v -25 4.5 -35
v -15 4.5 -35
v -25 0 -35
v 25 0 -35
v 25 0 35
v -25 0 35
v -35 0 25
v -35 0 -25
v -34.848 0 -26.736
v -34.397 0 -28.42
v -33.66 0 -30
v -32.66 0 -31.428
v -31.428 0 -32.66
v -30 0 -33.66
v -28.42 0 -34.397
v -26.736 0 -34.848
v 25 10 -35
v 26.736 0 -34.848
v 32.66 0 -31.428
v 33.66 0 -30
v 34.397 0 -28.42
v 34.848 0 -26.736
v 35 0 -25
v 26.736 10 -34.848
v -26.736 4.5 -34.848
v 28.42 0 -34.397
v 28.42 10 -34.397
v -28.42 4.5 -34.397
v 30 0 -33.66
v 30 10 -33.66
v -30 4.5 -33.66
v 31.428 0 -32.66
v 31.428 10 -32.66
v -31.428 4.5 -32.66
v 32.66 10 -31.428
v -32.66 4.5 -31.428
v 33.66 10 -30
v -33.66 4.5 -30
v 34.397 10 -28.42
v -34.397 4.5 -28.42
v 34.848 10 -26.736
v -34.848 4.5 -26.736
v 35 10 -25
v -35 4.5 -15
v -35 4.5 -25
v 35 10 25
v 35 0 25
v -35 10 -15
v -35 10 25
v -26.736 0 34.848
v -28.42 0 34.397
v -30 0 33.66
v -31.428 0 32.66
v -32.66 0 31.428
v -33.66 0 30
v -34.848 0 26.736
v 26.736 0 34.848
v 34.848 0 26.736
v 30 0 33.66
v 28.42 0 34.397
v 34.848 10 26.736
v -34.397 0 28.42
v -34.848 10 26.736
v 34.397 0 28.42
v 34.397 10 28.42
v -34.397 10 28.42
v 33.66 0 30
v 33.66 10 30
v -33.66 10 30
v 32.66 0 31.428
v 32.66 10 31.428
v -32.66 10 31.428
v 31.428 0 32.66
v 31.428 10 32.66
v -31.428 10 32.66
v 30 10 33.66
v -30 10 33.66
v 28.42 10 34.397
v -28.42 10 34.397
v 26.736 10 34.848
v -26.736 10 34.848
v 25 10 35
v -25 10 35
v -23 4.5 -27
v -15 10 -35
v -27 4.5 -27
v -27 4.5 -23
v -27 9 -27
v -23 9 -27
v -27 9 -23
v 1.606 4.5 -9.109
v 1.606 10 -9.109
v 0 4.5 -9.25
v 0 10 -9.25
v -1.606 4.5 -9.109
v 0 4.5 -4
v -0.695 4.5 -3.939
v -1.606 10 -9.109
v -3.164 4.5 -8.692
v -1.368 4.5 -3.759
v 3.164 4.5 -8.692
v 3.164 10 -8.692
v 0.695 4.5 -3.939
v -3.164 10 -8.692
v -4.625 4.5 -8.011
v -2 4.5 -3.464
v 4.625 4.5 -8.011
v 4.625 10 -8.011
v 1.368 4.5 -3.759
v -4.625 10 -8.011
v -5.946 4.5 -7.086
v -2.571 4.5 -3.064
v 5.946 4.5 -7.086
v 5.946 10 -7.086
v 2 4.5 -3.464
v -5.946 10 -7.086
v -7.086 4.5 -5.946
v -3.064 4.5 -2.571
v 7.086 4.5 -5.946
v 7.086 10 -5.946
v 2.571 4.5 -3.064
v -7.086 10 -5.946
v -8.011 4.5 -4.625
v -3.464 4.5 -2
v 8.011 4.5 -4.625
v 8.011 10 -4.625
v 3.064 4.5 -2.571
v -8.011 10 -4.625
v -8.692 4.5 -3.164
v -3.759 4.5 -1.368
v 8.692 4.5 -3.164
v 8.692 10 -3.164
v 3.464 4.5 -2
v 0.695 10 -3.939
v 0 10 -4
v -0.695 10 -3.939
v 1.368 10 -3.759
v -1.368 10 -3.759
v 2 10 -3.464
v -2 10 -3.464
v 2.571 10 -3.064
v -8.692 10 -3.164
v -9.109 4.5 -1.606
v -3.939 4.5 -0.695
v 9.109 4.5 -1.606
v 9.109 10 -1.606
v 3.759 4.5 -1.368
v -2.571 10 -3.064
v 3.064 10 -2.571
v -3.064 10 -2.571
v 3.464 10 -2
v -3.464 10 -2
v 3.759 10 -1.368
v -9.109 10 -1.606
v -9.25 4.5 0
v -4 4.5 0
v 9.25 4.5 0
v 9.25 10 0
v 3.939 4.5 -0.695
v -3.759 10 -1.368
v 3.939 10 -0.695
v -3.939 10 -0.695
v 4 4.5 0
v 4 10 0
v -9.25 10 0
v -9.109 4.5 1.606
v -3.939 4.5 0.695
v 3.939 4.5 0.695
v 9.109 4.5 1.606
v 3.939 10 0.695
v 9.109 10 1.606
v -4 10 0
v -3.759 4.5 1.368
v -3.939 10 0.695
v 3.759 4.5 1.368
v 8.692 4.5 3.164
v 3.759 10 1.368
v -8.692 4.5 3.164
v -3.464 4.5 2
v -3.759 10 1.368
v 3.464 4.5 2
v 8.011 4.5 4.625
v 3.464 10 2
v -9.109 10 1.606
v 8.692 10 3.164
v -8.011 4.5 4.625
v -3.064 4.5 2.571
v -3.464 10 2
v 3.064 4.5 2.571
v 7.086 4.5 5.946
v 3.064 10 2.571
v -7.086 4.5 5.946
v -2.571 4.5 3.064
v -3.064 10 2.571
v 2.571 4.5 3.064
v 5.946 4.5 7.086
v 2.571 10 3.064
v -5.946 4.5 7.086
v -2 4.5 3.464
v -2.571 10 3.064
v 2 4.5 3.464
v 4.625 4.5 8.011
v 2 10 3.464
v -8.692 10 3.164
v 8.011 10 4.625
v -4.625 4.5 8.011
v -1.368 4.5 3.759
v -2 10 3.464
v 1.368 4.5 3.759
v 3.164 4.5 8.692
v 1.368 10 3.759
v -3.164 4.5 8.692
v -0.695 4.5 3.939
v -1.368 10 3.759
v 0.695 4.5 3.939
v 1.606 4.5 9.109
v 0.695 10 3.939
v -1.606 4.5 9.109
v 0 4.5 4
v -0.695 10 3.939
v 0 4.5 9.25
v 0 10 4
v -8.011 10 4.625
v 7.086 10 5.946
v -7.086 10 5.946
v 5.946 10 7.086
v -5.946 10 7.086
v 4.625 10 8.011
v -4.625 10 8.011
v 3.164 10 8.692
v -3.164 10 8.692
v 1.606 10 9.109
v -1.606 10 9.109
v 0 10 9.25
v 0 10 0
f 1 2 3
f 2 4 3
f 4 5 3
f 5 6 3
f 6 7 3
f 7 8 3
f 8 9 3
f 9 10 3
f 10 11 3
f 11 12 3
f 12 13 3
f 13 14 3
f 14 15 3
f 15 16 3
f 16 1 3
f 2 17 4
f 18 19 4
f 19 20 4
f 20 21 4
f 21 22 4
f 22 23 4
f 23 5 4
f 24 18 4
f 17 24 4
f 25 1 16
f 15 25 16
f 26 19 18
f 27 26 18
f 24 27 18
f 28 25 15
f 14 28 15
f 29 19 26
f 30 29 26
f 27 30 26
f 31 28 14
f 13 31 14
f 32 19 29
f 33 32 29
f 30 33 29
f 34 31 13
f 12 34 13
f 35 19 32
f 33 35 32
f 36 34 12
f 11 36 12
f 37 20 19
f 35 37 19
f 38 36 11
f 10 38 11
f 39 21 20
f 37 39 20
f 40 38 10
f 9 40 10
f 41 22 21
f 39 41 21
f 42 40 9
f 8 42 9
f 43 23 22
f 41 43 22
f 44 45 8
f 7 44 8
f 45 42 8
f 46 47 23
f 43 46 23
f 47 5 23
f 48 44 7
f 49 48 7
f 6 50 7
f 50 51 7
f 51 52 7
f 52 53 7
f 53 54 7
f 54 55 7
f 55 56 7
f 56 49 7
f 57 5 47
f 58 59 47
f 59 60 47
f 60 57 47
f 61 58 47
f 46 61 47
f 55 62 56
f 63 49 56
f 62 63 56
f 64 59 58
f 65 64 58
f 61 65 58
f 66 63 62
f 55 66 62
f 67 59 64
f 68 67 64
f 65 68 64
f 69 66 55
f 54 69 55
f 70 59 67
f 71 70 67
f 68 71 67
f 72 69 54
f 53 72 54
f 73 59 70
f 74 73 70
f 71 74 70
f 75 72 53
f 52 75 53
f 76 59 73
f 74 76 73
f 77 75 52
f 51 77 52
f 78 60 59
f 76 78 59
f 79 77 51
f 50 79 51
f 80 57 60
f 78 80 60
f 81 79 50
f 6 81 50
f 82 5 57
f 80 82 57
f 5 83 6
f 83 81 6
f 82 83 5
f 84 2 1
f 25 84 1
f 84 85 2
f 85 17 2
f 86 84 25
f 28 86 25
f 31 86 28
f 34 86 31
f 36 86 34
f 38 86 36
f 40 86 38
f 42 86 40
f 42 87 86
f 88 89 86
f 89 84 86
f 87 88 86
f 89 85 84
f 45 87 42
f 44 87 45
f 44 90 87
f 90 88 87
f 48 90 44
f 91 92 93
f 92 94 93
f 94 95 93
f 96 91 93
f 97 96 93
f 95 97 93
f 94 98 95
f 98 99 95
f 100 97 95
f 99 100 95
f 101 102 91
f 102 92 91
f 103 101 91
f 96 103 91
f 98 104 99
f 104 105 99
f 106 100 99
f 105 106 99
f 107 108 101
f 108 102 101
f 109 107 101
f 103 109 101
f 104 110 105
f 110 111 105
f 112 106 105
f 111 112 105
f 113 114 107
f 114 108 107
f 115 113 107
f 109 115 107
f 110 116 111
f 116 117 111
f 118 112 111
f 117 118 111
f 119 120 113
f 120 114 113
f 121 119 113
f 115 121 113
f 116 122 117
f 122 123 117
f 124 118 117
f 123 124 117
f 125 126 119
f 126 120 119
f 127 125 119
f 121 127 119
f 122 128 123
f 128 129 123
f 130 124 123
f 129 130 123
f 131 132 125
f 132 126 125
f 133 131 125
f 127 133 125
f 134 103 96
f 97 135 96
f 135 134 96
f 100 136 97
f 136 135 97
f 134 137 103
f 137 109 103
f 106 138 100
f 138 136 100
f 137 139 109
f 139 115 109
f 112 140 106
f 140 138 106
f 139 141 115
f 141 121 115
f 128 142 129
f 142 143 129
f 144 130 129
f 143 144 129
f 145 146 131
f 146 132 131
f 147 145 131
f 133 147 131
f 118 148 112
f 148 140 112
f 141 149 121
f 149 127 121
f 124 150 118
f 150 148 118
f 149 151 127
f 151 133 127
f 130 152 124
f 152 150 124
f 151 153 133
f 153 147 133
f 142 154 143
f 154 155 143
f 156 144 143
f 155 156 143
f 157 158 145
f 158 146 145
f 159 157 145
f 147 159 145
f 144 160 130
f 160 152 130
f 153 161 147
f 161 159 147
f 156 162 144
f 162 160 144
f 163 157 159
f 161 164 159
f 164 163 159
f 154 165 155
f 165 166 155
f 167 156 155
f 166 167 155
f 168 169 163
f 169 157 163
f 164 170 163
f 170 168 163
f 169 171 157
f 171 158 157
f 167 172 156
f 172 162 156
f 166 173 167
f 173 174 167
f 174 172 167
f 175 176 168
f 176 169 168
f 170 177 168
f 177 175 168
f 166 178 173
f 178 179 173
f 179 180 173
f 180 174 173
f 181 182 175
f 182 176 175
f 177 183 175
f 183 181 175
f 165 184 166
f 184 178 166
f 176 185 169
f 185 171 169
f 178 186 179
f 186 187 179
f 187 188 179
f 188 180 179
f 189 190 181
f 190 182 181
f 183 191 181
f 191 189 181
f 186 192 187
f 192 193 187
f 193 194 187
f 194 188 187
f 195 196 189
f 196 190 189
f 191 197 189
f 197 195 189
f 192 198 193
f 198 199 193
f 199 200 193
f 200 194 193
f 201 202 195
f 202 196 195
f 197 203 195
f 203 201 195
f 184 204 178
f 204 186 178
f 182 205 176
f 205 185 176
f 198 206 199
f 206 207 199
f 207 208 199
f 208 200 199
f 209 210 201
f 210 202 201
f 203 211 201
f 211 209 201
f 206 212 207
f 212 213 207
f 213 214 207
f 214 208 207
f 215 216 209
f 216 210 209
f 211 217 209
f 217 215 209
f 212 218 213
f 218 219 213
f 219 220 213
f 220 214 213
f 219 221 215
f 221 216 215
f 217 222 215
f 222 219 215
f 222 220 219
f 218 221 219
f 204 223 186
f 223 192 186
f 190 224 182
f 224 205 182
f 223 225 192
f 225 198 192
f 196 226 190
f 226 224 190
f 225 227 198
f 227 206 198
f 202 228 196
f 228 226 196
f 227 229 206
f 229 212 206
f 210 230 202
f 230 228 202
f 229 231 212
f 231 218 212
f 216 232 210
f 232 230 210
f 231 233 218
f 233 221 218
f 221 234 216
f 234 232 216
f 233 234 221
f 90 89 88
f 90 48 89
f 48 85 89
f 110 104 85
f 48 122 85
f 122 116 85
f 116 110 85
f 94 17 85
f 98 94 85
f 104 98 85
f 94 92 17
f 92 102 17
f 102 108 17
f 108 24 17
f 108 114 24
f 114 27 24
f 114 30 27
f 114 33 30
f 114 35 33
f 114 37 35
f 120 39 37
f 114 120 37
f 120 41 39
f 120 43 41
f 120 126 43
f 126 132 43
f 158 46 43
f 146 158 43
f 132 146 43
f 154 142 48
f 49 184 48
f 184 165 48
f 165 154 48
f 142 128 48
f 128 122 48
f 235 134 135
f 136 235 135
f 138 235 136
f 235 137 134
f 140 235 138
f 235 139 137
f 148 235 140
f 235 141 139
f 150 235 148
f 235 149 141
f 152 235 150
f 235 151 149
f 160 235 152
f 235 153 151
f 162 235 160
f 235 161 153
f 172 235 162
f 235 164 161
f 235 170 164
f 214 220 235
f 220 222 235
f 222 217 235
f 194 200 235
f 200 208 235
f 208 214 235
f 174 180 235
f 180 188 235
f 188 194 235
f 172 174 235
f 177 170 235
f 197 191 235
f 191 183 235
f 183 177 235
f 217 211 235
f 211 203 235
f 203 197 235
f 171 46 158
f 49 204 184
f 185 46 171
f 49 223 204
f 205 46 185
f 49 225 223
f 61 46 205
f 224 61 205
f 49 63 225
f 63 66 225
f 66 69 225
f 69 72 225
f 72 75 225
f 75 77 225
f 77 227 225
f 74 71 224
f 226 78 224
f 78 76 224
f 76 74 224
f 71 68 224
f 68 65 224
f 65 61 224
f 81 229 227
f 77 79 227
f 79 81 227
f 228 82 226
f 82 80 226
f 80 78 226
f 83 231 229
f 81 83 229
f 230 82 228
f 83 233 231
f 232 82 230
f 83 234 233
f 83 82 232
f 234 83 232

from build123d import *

# Parameters (mm, degrees)
SKETCH_1_W          = 70
SKETCH_1_H          = 70
EXTRUDE_1_DEPTH     = 10
SKETCH_2_R          = 9.25
CUT_EXTRUDE_1_DEPTH = 5.5
SKETCH_3_R          = 4
EXTRUDE_2_DEPTH     = 5.5
CUT_EXTRUDE_2_DEPTH = 5.5
EXTRUDE_3_DEPTH     = 4.5
FILLET_1_R          = 10


with BuildPart() as part:
    # 草图1 → 凸台-拉伸1 (new body)
    with BuildSketch(Plane(origin=(0, 0, 0), x_dir=(1, 0, 0), z_dir=(0, 1, 0))):
        Rectangle(SKETCH_1_W, SKETCH_1_H)
    extrude(amount=EXTRUDE_1_DEPTH)

    # 草图2 → 切除-拉伸1 (cut)
    with BuildSketch(Plane(origin=(0, 10, 0), x_dir=(1, 0, 0), z_dir=(0, 1, 0))):
        Circle(SKETCH_2_R)
    extrude(amount=-CUT_EXTRUDE_1_DEPTH, mode=Mode.SUBTRACT)

    # 草图3 → 凸台-拉伸2 (add)
    with BuildSketch(Plane(origin=(0, 4.5, 0), x_dir=(1, 0, 0), z_dir=(0, 1, 0))):
        Circle(SKETCH_3_R)
    extrude(amount=EXTRUDE_2_DEPTH)

    # 草图4 → 切除-拉伸2 (cut)
    with BuildSketch(Plane(origin=(0, 10, 0), x_dir=(1, 0, 0), z_dir=(0, 1, 0))):
        Polygon((-35, 35), (-15, 35), (-35, 15), align=None)
    extrude(amount=-CUT_EXTRUDE_2_DEPTH, mode=Mode.SUBTRACT)

    # 草图5 → 凸台-拉伸3 (add)
    with BuildSketch(Plane(origin=(0, 4.5, 0), x_dir=(1, 0, 0), z_dir=(0, 1, 0))):
        Polygon((-23, 27), (-27, 27), (-27, 23), align=None)
    extrude(amount=EXTRUDE_3_DEPTH)

    # 圆角1
    fillet_1_edges = [part.edges().sort_by_distance(p)[0] for p in [
        (-35, 2.25, -35),
        (35, 5, 35),
        (-35, 5, 35),
        (35, 5, -35),
    ]]
    fillet(fillet_1_edges, radius=FILLET_1_R)


solid = part.part
